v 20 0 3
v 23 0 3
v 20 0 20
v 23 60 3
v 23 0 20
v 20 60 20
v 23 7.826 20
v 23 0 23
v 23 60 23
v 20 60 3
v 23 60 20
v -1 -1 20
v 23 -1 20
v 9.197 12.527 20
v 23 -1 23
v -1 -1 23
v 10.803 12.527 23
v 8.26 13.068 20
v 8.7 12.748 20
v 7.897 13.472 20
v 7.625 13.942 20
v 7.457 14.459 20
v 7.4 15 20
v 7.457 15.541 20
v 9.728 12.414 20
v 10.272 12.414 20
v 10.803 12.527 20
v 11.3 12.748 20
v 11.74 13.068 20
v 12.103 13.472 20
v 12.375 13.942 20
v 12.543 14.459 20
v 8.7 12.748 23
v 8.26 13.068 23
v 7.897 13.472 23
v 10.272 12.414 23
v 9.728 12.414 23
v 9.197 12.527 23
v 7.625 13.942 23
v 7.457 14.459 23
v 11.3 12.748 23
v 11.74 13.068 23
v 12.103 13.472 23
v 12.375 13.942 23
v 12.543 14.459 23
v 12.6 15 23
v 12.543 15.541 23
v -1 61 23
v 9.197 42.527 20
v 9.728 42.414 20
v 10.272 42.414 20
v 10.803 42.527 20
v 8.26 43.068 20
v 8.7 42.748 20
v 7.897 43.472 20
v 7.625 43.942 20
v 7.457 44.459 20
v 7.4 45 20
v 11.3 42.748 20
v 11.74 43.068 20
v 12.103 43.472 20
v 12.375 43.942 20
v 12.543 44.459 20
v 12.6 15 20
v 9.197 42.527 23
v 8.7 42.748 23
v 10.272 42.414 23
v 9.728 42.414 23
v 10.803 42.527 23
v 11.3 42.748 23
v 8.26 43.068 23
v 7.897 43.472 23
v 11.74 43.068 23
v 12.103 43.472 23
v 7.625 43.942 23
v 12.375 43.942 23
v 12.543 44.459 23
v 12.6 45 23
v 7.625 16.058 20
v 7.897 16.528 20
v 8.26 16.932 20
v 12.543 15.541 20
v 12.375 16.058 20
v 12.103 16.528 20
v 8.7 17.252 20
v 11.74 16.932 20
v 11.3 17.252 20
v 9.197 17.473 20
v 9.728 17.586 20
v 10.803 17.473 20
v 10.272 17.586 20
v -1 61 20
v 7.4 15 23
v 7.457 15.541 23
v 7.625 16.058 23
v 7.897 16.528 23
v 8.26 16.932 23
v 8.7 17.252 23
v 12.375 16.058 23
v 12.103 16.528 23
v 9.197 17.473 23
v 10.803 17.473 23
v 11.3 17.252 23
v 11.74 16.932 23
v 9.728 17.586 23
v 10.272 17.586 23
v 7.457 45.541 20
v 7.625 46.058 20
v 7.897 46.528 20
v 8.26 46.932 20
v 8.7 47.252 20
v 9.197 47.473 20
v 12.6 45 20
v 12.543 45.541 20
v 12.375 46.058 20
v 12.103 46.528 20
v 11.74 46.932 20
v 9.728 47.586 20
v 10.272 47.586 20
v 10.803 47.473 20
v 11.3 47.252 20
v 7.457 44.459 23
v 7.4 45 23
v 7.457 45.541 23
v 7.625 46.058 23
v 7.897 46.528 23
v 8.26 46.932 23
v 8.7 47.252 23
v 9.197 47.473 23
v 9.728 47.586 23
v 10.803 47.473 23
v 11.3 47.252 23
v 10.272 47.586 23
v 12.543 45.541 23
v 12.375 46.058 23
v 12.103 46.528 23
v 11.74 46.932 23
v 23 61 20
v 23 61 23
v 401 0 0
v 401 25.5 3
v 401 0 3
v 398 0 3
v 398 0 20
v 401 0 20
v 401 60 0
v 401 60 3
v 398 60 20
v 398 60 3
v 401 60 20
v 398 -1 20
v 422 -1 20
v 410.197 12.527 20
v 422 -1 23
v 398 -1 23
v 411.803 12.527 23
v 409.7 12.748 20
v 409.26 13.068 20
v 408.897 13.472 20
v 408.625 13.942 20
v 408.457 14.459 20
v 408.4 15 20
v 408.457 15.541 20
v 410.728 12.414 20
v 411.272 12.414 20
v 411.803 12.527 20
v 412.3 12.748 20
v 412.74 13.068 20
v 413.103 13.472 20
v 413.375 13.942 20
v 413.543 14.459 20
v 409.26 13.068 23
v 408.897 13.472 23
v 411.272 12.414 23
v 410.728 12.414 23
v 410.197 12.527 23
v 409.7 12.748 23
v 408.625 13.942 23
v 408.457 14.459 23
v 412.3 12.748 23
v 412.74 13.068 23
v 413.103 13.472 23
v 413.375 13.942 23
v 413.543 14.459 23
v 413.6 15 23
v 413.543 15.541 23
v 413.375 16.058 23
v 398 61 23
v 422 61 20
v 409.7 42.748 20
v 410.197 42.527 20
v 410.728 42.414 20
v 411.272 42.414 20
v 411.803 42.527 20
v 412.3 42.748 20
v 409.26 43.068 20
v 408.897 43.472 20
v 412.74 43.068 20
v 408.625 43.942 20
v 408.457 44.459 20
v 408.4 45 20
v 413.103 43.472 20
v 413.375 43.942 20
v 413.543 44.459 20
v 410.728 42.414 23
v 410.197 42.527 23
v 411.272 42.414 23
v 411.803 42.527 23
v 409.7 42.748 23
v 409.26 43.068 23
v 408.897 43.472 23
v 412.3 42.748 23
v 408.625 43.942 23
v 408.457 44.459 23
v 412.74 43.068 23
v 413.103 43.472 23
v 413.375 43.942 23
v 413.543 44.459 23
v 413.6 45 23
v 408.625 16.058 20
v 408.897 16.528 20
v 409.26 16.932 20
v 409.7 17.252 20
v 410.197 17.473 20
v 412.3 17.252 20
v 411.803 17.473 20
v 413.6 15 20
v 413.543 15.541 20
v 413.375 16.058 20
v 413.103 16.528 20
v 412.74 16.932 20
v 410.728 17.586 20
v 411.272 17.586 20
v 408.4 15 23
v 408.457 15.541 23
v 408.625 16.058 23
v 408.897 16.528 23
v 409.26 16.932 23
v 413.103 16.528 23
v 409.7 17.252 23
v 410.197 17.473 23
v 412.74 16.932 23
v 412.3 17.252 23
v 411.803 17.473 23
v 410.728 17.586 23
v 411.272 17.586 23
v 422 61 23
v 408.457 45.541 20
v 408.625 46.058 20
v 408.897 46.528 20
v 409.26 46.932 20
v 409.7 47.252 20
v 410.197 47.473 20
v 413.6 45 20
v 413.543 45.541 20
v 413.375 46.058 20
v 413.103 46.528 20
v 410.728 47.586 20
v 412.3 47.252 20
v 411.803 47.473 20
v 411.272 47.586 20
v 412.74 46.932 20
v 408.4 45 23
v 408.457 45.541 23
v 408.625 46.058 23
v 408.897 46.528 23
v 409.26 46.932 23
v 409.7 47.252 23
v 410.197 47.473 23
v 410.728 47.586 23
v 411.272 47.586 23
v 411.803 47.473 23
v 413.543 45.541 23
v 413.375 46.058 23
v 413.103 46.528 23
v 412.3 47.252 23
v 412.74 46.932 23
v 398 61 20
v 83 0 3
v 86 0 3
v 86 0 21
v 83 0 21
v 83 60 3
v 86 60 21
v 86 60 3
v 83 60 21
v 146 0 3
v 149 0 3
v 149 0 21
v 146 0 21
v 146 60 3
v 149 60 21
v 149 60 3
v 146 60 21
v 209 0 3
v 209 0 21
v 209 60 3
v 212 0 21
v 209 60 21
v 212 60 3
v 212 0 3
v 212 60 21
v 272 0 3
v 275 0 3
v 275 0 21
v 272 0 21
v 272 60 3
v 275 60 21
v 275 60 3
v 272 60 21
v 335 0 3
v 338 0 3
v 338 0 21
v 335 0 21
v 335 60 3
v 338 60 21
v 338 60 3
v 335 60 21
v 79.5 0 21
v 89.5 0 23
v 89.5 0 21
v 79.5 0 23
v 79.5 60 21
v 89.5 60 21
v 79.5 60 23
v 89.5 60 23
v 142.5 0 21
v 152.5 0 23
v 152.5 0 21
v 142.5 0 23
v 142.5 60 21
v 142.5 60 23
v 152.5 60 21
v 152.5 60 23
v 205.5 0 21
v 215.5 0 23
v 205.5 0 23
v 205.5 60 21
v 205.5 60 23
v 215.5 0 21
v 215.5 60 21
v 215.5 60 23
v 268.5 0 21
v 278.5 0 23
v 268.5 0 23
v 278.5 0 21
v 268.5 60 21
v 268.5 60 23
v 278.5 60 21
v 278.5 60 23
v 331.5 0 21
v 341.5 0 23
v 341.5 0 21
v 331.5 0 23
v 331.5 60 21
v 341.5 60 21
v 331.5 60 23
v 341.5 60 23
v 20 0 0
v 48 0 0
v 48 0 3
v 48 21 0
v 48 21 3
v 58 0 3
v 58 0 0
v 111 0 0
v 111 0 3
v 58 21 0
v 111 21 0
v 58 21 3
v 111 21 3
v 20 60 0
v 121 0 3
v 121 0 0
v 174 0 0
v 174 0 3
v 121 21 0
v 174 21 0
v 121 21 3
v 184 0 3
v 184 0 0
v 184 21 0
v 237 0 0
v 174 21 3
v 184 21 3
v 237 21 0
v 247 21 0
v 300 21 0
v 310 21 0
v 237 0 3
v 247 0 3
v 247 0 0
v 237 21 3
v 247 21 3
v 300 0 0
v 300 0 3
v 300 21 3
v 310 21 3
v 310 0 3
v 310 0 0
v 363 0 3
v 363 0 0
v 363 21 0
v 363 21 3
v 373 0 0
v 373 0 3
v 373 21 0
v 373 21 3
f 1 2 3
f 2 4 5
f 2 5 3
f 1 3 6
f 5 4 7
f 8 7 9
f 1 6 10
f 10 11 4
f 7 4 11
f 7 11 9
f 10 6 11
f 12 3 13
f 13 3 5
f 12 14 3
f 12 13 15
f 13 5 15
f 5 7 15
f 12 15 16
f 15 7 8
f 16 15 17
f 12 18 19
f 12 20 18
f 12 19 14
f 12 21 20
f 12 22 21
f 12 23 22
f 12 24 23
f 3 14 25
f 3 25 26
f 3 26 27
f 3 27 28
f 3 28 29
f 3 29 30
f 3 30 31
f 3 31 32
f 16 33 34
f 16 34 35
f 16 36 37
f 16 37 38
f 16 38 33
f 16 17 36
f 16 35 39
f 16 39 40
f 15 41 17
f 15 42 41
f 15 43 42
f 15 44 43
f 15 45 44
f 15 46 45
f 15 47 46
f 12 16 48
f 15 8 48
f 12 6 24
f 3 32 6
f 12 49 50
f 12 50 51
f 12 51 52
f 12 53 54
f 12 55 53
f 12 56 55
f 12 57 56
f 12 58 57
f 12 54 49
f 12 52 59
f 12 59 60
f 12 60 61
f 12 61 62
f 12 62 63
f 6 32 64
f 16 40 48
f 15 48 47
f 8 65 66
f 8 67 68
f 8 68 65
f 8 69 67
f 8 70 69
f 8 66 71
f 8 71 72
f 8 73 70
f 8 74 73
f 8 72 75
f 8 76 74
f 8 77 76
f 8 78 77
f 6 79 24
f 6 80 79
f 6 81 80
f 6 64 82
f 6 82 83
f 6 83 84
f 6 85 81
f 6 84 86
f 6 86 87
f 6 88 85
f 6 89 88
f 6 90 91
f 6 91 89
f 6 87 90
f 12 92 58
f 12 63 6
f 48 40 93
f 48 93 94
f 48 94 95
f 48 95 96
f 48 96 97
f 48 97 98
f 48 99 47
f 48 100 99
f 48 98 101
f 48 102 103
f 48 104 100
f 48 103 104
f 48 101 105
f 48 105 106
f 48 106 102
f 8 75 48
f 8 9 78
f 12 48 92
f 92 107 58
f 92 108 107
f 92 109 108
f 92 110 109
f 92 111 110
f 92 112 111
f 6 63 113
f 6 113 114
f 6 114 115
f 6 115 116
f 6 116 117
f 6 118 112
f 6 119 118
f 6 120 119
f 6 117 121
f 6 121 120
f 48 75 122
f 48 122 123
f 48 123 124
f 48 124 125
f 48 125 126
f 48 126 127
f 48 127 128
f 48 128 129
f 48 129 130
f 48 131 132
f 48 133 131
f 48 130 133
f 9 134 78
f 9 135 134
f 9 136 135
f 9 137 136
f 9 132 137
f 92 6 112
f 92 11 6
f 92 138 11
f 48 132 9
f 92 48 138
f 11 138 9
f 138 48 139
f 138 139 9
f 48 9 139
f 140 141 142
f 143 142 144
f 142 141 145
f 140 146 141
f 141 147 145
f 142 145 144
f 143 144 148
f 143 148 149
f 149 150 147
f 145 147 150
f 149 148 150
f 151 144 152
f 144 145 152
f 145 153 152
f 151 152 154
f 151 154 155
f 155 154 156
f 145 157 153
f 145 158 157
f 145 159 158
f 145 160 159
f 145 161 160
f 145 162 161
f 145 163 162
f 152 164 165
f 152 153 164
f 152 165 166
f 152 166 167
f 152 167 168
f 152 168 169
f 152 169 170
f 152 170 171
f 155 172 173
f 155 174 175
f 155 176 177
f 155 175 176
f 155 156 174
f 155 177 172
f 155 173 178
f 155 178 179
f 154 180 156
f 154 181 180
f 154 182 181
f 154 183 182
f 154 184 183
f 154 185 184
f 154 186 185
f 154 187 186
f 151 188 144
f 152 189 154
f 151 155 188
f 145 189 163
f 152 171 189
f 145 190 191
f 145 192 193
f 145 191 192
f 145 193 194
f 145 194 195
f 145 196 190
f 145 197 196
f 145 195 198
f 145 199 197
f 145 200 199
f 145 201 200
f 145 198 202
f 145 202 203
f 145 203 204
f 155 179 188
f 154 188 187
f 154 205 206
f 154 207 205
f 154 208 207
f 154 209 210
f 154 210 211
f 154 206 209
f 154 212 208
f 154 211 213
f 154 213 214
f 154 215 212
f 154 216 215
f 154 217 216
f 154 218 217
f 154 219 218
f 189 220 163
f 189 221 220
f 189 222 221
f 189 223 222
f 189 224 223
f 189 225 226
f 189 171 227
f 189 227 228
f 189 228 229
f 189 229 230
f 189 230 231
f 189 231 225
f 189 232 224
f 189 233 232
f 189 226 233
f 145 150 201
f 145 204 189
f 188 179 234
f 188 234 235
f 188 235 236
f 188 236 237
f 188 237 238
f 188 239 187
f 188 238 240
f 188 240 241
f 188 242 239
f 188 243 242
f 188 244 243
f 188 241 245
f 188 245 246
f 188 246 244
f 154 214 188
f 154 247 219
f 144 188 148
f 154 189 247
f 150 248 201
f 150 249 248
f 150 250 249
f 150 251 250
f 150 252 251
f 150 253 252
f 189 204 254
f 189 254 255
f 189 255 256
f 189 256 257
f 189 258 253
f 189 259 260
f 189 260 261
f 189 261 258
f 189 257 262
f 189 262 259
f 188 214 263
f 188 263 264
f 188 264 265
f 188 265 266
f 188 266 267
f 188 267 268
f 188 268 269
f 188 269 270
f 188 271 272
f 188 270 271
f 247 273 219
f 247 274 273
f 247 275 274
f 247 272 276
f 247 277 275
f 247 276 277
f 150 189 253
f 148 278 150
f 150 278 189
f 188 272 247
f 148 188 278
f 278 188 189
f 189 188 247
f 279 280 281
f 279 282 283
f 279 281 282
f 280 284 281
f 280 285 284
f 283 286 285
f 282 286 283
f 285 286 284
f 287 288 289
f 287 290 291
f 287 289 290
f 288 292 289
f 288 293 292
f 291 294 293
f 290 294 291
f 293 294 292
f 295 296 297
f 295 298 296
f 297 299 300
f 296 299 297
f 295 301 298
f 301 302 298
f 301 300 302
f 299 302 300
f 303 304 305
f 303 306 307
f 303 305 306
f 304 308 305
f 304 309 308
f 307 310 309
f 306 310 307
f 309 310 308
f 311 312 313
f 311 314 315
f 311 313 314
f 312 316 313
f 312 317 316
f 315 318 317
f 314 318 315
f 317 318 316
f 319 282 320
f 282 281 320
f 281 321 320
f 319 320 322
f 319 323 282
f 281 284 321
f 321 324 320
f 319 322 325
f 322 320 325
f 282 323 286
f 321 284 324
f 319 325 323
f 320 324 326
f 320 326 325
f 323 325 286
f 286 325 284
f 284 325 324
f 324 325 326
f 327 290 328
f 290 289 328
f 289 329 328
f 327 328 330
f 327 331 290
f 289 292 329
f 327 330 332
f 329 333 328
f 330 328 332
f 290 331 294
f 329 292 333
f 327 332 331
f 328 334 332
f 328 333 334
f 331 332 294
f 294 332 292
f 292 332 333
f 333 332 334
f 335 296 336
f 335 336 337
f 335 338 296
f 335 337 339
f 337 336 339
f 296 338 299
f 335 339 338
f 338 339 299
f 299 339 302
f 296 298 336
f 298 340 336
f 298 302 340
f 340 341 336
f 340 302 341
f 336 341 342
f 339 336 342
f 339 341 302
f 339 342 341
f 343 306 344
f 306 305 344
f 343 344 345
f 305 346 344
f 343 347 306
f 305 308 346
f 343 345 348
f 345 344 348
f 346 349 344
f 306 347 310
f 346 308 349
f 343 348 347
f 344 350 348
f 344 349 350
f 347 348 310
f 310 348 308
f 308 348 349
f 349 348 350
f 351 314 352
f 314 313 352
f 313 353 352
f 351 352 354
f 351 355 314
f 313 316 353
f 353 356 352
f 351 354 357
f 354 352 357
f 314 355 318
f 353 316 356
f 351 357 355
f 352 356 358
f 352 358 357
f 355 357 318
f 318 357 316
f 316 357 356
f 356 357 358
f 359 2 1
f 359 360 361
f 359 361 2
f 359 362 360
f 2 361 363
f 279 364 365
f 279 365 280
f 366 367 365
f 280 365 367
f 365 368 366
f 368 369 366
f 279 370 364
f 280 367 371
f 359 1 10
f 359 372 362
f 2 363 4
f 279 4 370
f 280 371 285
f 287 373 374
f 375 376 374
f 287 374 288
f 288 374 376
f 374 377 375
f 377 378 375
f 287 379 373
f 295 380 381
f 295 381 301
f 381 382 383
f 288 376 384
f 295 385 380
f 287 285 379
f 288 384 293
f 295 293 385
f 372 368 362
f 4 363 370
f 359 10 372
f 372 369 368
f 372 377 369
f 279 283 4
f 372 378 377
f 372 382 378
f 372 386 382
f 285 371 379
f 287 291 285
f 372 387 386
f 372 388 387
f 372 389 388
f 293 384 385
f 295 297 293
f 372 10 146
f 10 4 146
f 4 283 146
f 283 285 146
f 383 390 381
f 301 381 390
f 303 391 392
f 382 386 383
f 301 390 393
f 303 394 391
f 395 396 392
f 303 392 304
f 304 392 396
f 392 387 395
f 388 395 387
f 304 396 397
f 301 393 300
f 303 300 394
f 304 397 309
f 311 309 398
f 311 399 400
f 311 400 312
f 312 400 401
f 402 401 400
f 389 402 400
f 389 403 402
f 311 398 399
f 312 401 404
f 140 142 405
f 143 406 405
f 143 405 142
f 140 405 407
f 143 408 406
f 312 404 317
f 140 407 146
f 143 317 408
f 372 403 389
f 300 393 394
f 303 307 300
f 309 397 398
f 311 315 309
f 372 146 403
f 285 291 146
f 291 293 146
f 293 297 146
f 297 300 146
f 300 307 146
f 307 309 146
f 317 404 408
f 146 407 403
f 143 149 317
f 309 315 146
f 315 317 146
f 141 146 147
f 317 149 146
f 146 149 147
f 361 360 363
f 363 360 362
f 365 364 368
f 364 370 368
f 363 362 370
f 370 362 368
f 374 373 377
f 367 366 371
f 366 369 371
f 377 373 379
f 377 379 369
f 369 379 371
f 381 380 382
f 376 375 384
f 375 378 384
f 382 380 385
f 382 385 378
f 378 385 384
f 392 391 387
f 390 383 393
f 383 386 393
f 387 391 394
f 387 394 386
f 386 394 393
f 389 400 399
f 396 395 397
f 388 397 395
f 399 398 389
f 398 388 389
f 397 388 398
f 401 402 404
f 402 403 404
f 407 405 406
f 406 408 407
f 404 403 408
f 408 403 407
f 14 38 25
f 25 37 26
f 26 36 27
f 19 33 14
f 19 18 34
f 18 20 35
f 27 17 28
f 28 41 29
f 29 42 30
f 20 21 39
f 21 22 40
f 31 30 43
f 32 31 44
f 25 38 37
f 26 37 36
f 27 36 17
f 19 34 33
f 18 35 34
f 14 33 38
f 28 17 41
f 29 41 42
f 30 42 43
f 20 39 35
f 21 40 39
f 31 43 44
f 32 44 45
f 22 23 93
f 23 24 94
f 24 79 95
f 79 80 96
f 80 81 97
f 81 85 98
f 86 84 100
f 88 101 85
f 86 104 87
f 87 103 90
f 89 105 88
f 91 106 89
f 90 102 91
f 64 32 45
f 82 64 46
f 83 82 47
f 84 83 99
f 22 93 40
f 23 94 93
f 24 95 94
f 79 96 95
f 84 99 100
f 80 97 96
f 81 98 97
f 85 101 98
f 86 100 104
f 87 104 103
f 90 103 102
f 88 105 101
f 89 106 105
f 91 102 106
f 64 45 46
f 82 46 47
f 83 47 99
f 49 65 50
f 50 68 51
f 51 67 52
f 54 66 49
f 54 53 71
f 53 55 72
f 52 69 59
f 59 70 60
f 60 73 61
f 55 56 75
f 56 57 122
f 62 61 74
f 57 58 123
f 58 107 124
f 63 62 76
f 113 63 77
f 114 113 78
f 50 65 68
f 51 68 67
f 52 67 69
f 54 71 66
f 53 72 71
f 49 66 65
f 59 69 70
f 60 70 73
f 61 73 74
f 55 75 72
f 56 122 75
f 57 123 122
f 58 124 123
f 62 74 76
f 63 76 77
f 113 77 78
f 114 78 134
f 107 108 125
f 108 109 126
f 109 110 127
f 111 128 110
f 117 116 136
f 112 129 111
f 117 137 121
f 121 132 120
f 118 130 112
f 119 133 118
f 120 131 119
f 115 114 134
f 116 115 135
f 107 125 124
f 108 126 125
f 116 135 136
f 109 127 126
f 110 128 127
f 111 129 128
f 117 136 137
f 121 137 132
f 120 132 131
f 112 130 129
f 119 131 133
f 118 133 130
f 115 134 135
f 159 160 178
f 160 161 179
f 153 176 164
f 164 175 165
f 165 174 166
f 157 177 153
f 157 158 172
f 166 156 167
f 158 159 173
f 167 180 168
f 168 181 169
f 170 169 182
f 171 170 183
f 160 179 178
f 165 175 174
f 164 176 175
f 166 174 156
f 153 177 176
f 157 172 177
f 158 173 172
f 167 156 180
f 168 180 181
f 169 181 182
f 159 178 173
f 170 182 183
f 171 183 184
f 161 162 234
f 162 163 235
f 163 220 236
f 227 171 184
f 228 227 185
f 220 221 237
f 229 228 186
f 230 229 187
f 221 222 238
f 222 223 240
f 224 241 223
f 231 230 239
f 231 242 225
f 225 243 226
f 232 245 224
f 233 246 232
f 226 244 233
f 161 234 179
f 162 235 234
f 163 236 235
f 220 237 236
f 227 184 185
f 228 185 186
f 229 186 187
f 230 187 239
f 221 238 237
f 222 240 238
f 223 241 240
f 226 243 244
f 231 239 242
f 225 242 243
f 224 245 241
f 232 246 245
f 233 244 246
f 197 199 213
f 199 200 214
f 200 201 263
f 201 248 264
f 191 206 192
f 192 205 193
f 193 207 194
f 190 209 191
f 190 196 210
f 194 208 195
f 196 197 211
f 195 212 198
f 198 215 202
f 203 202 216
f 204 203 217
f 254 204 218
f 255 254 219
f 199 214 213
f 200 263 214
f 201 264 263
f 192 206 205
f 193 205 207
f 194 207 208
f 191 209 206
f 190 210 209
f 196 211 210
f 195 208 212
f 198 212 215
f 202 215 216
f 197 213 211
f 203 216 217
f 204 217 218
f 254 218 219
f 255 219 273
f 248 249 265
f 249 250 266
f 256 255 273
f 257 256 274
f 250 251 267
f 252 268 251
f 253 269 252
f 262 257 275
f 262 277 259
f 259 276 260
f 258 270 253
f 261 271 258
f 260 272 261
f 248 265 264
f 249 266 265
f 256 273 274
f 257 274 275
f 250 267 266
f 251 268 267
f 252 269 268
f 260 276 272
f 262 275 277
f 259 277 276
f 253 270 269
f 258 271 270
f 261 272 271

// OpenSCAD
// DrugShelf.scad - 6槽U型架，用于倒挂安装在柜子顶部
// 从侧面看是UUUUUU形状，前后开放，底部带安装耳朵
// 倒挂安装：耳朵在底部（Z=0处）用于固定

// 参数定义
wall_thickness = 3;           // 壁厚3mm
slot_internal_width = 60;     // U型槽底部内宽60mm
slot_height = 20;             // U型槽两边高度20mm
total_depth = 60;             // 总体深度60mm（前后方向）
num_slots = 6;                // 6组U型槽
ear_width = 20;               // 耳朵宽度2cm=20mm
ear_height = 3;               // 耳朵高度3mm
screw_hole_diameter = 5.2;    // M4螺丝孔直径(留打印误差空间)
notch_depth_y = 20;           // 单边口Y轴方向深度20mm（约1/3总深度60mm）
notch_width = 10;             // 单边口宽度1cm=10mm

// 计算总宽度
slot_spacing = slot_internal_width + wall_thickness;  // 槽间距（内宽+壁厚）
total_width = 2 * ear_width + wall_thickness + num_slots * slot_spacing;

// 主体模块 - U型架主体（前后开放，从侧面看是UUUUUU）
module shelf_body() {
    difference() {
        union() {
            // 中间U型槽区域的底板（只在U型槽区域，不包括耳朵）
            translate([ear_width, 0, 0])
                cube([total_width - 2 * ear_width, total_depth, wall_thickness]);
            
            // 左侧壁 + 耳朵一体结构（倒L型）
            union() {
                // 左侧壁（从底部Z=0到Z=23）
                translate([ear_width, 0, 0])
                    cube([wall_thickness, total_depth, slot_height + wall_thickness]);
                // 左耳朵（在左壁顶部向外延伸，顶面与中间隔板齐平Z=23）
                translate([-1, -1, slot_height])
                    cube([ear_width + wall_thickness + 1, total_depth + 2, ear_height]);
            }
            
            // 右侧壁 + 耳朵一体结构（倒L型）
            union() {
                // 右侧壁（从底部Z=0到Z=23）
                translate([total_width - ear_width - wall_thickness, 0, 0])
                    cube([wall_thickness, total_depth, slot_height + wall_thickness]);
                // 右耳朵（在右壁顶部向外延伸，顶面与中间隔板齐平Z=23）
                translate([total_width - ear_width - wall_thickness, -1, slot_height])
                    cube([ear_width + wall_thickness + 1, total_depth + 2, ear_height]);
            }
            
            // 中间隔板（5个分隔6个U型槽，从底板Z=3到Z=23）
            for (i = [1 : num_slots - 1]) {
                translate([ear_width + wall_thickness + i * slot_spacing - wall_thickness, 0, wall_thickness])
                    cube([wall_thickness, total_depth, slot_height]);
            }
            
            // 中间隔板顶部粘接壁（5个，从Z=21到Z=23，宽度10mm，厚度2mm）
            for (i = [1 : num_slots - 1]) {
                x_pos = ear_width + wall_thickness + i * slot_spacing - wall_thickness;
                // 粘接壁居中于隔板，向两侧各延伸(10-3)/2 = 3.5mm
                translate([x_pos - 3.5, 0, slot_height + wall_thickness - 2])
                    cube([10, total_depth, 2]);
            }
        }
        
        // 在每个U型槽底部前侧创建单边口
        for (i = [0 : num_slots - 1]) {
            x_pos = ear_width + wall_thickness + i * slot_spacing;
            // 在U型槽底部中心位置创建缺口
            // Y轴：从前面挖1/3深度（20mm），超出边界
            // Z轴：从Z=-1到Z=wall_thickness+1，完全穿透3mm底板并超出
            translate([
                x_pos + slot_internal_width / 2 - notch_width / 2, 
                -1, 
                -1
            ])
                cube([notch_width, notch_depth_y + 2, wall_thickness + 3]);
        }
        
        // 左侧耳朵螺丝孔（Z轴方向垂直穿过耳朵）
        // 耳朵在Z=20到Z=23，螺丝孔中心在Z=21.5
        translate([ear_width / 2, 15, slot_height + ear_height / 2])
            cylinder(h = ear_height + 4, d = screw_hole_diameter, $fn=30, center = true);
        translate([ear_width / 2, total_depth - 15, slot_height + ear_height / 2])
            cylinder(h = ear_height + 4, d = screw_hole_diameter, $fn=30, center = true);
        
        // 右侧耳朵螺丝孔（Z轴方向垂直穿过耳朵）
        translate([total_width - ear_width / 2, 15, slot_height + ear_height / 2])
            cylinder(h = ear_height + 4, d = screw_hole_diameter, $fn=30, center = true);
        translate([total_width - ear_width / 2, total_depth - 15, slot_height + ear_height / 2])
            cylinder(h = ear_height + 4, d = screw_hole_diameter, $fn=30, center = true);
    }
}

// 渲染完整架子
shelf_body();

// 显示尺寸信息
echo(str("总宽度: ", total_width, "mm"));
echo(str("总深度: ", total_depth, "mm"));
echo(str("总高度: ", slot_height + wall_thickness + ear_height, "mm"));
echo(str("单个U型槽内宽: ", slot_internal_width, "mm"));
echo(str("U型槽高度: ", slot_height, "mm"));
echo(str("耳朵宽度: ", ear_width, "mm"));
echo(str("耳朵高度: ", ear_height, "mm"));
